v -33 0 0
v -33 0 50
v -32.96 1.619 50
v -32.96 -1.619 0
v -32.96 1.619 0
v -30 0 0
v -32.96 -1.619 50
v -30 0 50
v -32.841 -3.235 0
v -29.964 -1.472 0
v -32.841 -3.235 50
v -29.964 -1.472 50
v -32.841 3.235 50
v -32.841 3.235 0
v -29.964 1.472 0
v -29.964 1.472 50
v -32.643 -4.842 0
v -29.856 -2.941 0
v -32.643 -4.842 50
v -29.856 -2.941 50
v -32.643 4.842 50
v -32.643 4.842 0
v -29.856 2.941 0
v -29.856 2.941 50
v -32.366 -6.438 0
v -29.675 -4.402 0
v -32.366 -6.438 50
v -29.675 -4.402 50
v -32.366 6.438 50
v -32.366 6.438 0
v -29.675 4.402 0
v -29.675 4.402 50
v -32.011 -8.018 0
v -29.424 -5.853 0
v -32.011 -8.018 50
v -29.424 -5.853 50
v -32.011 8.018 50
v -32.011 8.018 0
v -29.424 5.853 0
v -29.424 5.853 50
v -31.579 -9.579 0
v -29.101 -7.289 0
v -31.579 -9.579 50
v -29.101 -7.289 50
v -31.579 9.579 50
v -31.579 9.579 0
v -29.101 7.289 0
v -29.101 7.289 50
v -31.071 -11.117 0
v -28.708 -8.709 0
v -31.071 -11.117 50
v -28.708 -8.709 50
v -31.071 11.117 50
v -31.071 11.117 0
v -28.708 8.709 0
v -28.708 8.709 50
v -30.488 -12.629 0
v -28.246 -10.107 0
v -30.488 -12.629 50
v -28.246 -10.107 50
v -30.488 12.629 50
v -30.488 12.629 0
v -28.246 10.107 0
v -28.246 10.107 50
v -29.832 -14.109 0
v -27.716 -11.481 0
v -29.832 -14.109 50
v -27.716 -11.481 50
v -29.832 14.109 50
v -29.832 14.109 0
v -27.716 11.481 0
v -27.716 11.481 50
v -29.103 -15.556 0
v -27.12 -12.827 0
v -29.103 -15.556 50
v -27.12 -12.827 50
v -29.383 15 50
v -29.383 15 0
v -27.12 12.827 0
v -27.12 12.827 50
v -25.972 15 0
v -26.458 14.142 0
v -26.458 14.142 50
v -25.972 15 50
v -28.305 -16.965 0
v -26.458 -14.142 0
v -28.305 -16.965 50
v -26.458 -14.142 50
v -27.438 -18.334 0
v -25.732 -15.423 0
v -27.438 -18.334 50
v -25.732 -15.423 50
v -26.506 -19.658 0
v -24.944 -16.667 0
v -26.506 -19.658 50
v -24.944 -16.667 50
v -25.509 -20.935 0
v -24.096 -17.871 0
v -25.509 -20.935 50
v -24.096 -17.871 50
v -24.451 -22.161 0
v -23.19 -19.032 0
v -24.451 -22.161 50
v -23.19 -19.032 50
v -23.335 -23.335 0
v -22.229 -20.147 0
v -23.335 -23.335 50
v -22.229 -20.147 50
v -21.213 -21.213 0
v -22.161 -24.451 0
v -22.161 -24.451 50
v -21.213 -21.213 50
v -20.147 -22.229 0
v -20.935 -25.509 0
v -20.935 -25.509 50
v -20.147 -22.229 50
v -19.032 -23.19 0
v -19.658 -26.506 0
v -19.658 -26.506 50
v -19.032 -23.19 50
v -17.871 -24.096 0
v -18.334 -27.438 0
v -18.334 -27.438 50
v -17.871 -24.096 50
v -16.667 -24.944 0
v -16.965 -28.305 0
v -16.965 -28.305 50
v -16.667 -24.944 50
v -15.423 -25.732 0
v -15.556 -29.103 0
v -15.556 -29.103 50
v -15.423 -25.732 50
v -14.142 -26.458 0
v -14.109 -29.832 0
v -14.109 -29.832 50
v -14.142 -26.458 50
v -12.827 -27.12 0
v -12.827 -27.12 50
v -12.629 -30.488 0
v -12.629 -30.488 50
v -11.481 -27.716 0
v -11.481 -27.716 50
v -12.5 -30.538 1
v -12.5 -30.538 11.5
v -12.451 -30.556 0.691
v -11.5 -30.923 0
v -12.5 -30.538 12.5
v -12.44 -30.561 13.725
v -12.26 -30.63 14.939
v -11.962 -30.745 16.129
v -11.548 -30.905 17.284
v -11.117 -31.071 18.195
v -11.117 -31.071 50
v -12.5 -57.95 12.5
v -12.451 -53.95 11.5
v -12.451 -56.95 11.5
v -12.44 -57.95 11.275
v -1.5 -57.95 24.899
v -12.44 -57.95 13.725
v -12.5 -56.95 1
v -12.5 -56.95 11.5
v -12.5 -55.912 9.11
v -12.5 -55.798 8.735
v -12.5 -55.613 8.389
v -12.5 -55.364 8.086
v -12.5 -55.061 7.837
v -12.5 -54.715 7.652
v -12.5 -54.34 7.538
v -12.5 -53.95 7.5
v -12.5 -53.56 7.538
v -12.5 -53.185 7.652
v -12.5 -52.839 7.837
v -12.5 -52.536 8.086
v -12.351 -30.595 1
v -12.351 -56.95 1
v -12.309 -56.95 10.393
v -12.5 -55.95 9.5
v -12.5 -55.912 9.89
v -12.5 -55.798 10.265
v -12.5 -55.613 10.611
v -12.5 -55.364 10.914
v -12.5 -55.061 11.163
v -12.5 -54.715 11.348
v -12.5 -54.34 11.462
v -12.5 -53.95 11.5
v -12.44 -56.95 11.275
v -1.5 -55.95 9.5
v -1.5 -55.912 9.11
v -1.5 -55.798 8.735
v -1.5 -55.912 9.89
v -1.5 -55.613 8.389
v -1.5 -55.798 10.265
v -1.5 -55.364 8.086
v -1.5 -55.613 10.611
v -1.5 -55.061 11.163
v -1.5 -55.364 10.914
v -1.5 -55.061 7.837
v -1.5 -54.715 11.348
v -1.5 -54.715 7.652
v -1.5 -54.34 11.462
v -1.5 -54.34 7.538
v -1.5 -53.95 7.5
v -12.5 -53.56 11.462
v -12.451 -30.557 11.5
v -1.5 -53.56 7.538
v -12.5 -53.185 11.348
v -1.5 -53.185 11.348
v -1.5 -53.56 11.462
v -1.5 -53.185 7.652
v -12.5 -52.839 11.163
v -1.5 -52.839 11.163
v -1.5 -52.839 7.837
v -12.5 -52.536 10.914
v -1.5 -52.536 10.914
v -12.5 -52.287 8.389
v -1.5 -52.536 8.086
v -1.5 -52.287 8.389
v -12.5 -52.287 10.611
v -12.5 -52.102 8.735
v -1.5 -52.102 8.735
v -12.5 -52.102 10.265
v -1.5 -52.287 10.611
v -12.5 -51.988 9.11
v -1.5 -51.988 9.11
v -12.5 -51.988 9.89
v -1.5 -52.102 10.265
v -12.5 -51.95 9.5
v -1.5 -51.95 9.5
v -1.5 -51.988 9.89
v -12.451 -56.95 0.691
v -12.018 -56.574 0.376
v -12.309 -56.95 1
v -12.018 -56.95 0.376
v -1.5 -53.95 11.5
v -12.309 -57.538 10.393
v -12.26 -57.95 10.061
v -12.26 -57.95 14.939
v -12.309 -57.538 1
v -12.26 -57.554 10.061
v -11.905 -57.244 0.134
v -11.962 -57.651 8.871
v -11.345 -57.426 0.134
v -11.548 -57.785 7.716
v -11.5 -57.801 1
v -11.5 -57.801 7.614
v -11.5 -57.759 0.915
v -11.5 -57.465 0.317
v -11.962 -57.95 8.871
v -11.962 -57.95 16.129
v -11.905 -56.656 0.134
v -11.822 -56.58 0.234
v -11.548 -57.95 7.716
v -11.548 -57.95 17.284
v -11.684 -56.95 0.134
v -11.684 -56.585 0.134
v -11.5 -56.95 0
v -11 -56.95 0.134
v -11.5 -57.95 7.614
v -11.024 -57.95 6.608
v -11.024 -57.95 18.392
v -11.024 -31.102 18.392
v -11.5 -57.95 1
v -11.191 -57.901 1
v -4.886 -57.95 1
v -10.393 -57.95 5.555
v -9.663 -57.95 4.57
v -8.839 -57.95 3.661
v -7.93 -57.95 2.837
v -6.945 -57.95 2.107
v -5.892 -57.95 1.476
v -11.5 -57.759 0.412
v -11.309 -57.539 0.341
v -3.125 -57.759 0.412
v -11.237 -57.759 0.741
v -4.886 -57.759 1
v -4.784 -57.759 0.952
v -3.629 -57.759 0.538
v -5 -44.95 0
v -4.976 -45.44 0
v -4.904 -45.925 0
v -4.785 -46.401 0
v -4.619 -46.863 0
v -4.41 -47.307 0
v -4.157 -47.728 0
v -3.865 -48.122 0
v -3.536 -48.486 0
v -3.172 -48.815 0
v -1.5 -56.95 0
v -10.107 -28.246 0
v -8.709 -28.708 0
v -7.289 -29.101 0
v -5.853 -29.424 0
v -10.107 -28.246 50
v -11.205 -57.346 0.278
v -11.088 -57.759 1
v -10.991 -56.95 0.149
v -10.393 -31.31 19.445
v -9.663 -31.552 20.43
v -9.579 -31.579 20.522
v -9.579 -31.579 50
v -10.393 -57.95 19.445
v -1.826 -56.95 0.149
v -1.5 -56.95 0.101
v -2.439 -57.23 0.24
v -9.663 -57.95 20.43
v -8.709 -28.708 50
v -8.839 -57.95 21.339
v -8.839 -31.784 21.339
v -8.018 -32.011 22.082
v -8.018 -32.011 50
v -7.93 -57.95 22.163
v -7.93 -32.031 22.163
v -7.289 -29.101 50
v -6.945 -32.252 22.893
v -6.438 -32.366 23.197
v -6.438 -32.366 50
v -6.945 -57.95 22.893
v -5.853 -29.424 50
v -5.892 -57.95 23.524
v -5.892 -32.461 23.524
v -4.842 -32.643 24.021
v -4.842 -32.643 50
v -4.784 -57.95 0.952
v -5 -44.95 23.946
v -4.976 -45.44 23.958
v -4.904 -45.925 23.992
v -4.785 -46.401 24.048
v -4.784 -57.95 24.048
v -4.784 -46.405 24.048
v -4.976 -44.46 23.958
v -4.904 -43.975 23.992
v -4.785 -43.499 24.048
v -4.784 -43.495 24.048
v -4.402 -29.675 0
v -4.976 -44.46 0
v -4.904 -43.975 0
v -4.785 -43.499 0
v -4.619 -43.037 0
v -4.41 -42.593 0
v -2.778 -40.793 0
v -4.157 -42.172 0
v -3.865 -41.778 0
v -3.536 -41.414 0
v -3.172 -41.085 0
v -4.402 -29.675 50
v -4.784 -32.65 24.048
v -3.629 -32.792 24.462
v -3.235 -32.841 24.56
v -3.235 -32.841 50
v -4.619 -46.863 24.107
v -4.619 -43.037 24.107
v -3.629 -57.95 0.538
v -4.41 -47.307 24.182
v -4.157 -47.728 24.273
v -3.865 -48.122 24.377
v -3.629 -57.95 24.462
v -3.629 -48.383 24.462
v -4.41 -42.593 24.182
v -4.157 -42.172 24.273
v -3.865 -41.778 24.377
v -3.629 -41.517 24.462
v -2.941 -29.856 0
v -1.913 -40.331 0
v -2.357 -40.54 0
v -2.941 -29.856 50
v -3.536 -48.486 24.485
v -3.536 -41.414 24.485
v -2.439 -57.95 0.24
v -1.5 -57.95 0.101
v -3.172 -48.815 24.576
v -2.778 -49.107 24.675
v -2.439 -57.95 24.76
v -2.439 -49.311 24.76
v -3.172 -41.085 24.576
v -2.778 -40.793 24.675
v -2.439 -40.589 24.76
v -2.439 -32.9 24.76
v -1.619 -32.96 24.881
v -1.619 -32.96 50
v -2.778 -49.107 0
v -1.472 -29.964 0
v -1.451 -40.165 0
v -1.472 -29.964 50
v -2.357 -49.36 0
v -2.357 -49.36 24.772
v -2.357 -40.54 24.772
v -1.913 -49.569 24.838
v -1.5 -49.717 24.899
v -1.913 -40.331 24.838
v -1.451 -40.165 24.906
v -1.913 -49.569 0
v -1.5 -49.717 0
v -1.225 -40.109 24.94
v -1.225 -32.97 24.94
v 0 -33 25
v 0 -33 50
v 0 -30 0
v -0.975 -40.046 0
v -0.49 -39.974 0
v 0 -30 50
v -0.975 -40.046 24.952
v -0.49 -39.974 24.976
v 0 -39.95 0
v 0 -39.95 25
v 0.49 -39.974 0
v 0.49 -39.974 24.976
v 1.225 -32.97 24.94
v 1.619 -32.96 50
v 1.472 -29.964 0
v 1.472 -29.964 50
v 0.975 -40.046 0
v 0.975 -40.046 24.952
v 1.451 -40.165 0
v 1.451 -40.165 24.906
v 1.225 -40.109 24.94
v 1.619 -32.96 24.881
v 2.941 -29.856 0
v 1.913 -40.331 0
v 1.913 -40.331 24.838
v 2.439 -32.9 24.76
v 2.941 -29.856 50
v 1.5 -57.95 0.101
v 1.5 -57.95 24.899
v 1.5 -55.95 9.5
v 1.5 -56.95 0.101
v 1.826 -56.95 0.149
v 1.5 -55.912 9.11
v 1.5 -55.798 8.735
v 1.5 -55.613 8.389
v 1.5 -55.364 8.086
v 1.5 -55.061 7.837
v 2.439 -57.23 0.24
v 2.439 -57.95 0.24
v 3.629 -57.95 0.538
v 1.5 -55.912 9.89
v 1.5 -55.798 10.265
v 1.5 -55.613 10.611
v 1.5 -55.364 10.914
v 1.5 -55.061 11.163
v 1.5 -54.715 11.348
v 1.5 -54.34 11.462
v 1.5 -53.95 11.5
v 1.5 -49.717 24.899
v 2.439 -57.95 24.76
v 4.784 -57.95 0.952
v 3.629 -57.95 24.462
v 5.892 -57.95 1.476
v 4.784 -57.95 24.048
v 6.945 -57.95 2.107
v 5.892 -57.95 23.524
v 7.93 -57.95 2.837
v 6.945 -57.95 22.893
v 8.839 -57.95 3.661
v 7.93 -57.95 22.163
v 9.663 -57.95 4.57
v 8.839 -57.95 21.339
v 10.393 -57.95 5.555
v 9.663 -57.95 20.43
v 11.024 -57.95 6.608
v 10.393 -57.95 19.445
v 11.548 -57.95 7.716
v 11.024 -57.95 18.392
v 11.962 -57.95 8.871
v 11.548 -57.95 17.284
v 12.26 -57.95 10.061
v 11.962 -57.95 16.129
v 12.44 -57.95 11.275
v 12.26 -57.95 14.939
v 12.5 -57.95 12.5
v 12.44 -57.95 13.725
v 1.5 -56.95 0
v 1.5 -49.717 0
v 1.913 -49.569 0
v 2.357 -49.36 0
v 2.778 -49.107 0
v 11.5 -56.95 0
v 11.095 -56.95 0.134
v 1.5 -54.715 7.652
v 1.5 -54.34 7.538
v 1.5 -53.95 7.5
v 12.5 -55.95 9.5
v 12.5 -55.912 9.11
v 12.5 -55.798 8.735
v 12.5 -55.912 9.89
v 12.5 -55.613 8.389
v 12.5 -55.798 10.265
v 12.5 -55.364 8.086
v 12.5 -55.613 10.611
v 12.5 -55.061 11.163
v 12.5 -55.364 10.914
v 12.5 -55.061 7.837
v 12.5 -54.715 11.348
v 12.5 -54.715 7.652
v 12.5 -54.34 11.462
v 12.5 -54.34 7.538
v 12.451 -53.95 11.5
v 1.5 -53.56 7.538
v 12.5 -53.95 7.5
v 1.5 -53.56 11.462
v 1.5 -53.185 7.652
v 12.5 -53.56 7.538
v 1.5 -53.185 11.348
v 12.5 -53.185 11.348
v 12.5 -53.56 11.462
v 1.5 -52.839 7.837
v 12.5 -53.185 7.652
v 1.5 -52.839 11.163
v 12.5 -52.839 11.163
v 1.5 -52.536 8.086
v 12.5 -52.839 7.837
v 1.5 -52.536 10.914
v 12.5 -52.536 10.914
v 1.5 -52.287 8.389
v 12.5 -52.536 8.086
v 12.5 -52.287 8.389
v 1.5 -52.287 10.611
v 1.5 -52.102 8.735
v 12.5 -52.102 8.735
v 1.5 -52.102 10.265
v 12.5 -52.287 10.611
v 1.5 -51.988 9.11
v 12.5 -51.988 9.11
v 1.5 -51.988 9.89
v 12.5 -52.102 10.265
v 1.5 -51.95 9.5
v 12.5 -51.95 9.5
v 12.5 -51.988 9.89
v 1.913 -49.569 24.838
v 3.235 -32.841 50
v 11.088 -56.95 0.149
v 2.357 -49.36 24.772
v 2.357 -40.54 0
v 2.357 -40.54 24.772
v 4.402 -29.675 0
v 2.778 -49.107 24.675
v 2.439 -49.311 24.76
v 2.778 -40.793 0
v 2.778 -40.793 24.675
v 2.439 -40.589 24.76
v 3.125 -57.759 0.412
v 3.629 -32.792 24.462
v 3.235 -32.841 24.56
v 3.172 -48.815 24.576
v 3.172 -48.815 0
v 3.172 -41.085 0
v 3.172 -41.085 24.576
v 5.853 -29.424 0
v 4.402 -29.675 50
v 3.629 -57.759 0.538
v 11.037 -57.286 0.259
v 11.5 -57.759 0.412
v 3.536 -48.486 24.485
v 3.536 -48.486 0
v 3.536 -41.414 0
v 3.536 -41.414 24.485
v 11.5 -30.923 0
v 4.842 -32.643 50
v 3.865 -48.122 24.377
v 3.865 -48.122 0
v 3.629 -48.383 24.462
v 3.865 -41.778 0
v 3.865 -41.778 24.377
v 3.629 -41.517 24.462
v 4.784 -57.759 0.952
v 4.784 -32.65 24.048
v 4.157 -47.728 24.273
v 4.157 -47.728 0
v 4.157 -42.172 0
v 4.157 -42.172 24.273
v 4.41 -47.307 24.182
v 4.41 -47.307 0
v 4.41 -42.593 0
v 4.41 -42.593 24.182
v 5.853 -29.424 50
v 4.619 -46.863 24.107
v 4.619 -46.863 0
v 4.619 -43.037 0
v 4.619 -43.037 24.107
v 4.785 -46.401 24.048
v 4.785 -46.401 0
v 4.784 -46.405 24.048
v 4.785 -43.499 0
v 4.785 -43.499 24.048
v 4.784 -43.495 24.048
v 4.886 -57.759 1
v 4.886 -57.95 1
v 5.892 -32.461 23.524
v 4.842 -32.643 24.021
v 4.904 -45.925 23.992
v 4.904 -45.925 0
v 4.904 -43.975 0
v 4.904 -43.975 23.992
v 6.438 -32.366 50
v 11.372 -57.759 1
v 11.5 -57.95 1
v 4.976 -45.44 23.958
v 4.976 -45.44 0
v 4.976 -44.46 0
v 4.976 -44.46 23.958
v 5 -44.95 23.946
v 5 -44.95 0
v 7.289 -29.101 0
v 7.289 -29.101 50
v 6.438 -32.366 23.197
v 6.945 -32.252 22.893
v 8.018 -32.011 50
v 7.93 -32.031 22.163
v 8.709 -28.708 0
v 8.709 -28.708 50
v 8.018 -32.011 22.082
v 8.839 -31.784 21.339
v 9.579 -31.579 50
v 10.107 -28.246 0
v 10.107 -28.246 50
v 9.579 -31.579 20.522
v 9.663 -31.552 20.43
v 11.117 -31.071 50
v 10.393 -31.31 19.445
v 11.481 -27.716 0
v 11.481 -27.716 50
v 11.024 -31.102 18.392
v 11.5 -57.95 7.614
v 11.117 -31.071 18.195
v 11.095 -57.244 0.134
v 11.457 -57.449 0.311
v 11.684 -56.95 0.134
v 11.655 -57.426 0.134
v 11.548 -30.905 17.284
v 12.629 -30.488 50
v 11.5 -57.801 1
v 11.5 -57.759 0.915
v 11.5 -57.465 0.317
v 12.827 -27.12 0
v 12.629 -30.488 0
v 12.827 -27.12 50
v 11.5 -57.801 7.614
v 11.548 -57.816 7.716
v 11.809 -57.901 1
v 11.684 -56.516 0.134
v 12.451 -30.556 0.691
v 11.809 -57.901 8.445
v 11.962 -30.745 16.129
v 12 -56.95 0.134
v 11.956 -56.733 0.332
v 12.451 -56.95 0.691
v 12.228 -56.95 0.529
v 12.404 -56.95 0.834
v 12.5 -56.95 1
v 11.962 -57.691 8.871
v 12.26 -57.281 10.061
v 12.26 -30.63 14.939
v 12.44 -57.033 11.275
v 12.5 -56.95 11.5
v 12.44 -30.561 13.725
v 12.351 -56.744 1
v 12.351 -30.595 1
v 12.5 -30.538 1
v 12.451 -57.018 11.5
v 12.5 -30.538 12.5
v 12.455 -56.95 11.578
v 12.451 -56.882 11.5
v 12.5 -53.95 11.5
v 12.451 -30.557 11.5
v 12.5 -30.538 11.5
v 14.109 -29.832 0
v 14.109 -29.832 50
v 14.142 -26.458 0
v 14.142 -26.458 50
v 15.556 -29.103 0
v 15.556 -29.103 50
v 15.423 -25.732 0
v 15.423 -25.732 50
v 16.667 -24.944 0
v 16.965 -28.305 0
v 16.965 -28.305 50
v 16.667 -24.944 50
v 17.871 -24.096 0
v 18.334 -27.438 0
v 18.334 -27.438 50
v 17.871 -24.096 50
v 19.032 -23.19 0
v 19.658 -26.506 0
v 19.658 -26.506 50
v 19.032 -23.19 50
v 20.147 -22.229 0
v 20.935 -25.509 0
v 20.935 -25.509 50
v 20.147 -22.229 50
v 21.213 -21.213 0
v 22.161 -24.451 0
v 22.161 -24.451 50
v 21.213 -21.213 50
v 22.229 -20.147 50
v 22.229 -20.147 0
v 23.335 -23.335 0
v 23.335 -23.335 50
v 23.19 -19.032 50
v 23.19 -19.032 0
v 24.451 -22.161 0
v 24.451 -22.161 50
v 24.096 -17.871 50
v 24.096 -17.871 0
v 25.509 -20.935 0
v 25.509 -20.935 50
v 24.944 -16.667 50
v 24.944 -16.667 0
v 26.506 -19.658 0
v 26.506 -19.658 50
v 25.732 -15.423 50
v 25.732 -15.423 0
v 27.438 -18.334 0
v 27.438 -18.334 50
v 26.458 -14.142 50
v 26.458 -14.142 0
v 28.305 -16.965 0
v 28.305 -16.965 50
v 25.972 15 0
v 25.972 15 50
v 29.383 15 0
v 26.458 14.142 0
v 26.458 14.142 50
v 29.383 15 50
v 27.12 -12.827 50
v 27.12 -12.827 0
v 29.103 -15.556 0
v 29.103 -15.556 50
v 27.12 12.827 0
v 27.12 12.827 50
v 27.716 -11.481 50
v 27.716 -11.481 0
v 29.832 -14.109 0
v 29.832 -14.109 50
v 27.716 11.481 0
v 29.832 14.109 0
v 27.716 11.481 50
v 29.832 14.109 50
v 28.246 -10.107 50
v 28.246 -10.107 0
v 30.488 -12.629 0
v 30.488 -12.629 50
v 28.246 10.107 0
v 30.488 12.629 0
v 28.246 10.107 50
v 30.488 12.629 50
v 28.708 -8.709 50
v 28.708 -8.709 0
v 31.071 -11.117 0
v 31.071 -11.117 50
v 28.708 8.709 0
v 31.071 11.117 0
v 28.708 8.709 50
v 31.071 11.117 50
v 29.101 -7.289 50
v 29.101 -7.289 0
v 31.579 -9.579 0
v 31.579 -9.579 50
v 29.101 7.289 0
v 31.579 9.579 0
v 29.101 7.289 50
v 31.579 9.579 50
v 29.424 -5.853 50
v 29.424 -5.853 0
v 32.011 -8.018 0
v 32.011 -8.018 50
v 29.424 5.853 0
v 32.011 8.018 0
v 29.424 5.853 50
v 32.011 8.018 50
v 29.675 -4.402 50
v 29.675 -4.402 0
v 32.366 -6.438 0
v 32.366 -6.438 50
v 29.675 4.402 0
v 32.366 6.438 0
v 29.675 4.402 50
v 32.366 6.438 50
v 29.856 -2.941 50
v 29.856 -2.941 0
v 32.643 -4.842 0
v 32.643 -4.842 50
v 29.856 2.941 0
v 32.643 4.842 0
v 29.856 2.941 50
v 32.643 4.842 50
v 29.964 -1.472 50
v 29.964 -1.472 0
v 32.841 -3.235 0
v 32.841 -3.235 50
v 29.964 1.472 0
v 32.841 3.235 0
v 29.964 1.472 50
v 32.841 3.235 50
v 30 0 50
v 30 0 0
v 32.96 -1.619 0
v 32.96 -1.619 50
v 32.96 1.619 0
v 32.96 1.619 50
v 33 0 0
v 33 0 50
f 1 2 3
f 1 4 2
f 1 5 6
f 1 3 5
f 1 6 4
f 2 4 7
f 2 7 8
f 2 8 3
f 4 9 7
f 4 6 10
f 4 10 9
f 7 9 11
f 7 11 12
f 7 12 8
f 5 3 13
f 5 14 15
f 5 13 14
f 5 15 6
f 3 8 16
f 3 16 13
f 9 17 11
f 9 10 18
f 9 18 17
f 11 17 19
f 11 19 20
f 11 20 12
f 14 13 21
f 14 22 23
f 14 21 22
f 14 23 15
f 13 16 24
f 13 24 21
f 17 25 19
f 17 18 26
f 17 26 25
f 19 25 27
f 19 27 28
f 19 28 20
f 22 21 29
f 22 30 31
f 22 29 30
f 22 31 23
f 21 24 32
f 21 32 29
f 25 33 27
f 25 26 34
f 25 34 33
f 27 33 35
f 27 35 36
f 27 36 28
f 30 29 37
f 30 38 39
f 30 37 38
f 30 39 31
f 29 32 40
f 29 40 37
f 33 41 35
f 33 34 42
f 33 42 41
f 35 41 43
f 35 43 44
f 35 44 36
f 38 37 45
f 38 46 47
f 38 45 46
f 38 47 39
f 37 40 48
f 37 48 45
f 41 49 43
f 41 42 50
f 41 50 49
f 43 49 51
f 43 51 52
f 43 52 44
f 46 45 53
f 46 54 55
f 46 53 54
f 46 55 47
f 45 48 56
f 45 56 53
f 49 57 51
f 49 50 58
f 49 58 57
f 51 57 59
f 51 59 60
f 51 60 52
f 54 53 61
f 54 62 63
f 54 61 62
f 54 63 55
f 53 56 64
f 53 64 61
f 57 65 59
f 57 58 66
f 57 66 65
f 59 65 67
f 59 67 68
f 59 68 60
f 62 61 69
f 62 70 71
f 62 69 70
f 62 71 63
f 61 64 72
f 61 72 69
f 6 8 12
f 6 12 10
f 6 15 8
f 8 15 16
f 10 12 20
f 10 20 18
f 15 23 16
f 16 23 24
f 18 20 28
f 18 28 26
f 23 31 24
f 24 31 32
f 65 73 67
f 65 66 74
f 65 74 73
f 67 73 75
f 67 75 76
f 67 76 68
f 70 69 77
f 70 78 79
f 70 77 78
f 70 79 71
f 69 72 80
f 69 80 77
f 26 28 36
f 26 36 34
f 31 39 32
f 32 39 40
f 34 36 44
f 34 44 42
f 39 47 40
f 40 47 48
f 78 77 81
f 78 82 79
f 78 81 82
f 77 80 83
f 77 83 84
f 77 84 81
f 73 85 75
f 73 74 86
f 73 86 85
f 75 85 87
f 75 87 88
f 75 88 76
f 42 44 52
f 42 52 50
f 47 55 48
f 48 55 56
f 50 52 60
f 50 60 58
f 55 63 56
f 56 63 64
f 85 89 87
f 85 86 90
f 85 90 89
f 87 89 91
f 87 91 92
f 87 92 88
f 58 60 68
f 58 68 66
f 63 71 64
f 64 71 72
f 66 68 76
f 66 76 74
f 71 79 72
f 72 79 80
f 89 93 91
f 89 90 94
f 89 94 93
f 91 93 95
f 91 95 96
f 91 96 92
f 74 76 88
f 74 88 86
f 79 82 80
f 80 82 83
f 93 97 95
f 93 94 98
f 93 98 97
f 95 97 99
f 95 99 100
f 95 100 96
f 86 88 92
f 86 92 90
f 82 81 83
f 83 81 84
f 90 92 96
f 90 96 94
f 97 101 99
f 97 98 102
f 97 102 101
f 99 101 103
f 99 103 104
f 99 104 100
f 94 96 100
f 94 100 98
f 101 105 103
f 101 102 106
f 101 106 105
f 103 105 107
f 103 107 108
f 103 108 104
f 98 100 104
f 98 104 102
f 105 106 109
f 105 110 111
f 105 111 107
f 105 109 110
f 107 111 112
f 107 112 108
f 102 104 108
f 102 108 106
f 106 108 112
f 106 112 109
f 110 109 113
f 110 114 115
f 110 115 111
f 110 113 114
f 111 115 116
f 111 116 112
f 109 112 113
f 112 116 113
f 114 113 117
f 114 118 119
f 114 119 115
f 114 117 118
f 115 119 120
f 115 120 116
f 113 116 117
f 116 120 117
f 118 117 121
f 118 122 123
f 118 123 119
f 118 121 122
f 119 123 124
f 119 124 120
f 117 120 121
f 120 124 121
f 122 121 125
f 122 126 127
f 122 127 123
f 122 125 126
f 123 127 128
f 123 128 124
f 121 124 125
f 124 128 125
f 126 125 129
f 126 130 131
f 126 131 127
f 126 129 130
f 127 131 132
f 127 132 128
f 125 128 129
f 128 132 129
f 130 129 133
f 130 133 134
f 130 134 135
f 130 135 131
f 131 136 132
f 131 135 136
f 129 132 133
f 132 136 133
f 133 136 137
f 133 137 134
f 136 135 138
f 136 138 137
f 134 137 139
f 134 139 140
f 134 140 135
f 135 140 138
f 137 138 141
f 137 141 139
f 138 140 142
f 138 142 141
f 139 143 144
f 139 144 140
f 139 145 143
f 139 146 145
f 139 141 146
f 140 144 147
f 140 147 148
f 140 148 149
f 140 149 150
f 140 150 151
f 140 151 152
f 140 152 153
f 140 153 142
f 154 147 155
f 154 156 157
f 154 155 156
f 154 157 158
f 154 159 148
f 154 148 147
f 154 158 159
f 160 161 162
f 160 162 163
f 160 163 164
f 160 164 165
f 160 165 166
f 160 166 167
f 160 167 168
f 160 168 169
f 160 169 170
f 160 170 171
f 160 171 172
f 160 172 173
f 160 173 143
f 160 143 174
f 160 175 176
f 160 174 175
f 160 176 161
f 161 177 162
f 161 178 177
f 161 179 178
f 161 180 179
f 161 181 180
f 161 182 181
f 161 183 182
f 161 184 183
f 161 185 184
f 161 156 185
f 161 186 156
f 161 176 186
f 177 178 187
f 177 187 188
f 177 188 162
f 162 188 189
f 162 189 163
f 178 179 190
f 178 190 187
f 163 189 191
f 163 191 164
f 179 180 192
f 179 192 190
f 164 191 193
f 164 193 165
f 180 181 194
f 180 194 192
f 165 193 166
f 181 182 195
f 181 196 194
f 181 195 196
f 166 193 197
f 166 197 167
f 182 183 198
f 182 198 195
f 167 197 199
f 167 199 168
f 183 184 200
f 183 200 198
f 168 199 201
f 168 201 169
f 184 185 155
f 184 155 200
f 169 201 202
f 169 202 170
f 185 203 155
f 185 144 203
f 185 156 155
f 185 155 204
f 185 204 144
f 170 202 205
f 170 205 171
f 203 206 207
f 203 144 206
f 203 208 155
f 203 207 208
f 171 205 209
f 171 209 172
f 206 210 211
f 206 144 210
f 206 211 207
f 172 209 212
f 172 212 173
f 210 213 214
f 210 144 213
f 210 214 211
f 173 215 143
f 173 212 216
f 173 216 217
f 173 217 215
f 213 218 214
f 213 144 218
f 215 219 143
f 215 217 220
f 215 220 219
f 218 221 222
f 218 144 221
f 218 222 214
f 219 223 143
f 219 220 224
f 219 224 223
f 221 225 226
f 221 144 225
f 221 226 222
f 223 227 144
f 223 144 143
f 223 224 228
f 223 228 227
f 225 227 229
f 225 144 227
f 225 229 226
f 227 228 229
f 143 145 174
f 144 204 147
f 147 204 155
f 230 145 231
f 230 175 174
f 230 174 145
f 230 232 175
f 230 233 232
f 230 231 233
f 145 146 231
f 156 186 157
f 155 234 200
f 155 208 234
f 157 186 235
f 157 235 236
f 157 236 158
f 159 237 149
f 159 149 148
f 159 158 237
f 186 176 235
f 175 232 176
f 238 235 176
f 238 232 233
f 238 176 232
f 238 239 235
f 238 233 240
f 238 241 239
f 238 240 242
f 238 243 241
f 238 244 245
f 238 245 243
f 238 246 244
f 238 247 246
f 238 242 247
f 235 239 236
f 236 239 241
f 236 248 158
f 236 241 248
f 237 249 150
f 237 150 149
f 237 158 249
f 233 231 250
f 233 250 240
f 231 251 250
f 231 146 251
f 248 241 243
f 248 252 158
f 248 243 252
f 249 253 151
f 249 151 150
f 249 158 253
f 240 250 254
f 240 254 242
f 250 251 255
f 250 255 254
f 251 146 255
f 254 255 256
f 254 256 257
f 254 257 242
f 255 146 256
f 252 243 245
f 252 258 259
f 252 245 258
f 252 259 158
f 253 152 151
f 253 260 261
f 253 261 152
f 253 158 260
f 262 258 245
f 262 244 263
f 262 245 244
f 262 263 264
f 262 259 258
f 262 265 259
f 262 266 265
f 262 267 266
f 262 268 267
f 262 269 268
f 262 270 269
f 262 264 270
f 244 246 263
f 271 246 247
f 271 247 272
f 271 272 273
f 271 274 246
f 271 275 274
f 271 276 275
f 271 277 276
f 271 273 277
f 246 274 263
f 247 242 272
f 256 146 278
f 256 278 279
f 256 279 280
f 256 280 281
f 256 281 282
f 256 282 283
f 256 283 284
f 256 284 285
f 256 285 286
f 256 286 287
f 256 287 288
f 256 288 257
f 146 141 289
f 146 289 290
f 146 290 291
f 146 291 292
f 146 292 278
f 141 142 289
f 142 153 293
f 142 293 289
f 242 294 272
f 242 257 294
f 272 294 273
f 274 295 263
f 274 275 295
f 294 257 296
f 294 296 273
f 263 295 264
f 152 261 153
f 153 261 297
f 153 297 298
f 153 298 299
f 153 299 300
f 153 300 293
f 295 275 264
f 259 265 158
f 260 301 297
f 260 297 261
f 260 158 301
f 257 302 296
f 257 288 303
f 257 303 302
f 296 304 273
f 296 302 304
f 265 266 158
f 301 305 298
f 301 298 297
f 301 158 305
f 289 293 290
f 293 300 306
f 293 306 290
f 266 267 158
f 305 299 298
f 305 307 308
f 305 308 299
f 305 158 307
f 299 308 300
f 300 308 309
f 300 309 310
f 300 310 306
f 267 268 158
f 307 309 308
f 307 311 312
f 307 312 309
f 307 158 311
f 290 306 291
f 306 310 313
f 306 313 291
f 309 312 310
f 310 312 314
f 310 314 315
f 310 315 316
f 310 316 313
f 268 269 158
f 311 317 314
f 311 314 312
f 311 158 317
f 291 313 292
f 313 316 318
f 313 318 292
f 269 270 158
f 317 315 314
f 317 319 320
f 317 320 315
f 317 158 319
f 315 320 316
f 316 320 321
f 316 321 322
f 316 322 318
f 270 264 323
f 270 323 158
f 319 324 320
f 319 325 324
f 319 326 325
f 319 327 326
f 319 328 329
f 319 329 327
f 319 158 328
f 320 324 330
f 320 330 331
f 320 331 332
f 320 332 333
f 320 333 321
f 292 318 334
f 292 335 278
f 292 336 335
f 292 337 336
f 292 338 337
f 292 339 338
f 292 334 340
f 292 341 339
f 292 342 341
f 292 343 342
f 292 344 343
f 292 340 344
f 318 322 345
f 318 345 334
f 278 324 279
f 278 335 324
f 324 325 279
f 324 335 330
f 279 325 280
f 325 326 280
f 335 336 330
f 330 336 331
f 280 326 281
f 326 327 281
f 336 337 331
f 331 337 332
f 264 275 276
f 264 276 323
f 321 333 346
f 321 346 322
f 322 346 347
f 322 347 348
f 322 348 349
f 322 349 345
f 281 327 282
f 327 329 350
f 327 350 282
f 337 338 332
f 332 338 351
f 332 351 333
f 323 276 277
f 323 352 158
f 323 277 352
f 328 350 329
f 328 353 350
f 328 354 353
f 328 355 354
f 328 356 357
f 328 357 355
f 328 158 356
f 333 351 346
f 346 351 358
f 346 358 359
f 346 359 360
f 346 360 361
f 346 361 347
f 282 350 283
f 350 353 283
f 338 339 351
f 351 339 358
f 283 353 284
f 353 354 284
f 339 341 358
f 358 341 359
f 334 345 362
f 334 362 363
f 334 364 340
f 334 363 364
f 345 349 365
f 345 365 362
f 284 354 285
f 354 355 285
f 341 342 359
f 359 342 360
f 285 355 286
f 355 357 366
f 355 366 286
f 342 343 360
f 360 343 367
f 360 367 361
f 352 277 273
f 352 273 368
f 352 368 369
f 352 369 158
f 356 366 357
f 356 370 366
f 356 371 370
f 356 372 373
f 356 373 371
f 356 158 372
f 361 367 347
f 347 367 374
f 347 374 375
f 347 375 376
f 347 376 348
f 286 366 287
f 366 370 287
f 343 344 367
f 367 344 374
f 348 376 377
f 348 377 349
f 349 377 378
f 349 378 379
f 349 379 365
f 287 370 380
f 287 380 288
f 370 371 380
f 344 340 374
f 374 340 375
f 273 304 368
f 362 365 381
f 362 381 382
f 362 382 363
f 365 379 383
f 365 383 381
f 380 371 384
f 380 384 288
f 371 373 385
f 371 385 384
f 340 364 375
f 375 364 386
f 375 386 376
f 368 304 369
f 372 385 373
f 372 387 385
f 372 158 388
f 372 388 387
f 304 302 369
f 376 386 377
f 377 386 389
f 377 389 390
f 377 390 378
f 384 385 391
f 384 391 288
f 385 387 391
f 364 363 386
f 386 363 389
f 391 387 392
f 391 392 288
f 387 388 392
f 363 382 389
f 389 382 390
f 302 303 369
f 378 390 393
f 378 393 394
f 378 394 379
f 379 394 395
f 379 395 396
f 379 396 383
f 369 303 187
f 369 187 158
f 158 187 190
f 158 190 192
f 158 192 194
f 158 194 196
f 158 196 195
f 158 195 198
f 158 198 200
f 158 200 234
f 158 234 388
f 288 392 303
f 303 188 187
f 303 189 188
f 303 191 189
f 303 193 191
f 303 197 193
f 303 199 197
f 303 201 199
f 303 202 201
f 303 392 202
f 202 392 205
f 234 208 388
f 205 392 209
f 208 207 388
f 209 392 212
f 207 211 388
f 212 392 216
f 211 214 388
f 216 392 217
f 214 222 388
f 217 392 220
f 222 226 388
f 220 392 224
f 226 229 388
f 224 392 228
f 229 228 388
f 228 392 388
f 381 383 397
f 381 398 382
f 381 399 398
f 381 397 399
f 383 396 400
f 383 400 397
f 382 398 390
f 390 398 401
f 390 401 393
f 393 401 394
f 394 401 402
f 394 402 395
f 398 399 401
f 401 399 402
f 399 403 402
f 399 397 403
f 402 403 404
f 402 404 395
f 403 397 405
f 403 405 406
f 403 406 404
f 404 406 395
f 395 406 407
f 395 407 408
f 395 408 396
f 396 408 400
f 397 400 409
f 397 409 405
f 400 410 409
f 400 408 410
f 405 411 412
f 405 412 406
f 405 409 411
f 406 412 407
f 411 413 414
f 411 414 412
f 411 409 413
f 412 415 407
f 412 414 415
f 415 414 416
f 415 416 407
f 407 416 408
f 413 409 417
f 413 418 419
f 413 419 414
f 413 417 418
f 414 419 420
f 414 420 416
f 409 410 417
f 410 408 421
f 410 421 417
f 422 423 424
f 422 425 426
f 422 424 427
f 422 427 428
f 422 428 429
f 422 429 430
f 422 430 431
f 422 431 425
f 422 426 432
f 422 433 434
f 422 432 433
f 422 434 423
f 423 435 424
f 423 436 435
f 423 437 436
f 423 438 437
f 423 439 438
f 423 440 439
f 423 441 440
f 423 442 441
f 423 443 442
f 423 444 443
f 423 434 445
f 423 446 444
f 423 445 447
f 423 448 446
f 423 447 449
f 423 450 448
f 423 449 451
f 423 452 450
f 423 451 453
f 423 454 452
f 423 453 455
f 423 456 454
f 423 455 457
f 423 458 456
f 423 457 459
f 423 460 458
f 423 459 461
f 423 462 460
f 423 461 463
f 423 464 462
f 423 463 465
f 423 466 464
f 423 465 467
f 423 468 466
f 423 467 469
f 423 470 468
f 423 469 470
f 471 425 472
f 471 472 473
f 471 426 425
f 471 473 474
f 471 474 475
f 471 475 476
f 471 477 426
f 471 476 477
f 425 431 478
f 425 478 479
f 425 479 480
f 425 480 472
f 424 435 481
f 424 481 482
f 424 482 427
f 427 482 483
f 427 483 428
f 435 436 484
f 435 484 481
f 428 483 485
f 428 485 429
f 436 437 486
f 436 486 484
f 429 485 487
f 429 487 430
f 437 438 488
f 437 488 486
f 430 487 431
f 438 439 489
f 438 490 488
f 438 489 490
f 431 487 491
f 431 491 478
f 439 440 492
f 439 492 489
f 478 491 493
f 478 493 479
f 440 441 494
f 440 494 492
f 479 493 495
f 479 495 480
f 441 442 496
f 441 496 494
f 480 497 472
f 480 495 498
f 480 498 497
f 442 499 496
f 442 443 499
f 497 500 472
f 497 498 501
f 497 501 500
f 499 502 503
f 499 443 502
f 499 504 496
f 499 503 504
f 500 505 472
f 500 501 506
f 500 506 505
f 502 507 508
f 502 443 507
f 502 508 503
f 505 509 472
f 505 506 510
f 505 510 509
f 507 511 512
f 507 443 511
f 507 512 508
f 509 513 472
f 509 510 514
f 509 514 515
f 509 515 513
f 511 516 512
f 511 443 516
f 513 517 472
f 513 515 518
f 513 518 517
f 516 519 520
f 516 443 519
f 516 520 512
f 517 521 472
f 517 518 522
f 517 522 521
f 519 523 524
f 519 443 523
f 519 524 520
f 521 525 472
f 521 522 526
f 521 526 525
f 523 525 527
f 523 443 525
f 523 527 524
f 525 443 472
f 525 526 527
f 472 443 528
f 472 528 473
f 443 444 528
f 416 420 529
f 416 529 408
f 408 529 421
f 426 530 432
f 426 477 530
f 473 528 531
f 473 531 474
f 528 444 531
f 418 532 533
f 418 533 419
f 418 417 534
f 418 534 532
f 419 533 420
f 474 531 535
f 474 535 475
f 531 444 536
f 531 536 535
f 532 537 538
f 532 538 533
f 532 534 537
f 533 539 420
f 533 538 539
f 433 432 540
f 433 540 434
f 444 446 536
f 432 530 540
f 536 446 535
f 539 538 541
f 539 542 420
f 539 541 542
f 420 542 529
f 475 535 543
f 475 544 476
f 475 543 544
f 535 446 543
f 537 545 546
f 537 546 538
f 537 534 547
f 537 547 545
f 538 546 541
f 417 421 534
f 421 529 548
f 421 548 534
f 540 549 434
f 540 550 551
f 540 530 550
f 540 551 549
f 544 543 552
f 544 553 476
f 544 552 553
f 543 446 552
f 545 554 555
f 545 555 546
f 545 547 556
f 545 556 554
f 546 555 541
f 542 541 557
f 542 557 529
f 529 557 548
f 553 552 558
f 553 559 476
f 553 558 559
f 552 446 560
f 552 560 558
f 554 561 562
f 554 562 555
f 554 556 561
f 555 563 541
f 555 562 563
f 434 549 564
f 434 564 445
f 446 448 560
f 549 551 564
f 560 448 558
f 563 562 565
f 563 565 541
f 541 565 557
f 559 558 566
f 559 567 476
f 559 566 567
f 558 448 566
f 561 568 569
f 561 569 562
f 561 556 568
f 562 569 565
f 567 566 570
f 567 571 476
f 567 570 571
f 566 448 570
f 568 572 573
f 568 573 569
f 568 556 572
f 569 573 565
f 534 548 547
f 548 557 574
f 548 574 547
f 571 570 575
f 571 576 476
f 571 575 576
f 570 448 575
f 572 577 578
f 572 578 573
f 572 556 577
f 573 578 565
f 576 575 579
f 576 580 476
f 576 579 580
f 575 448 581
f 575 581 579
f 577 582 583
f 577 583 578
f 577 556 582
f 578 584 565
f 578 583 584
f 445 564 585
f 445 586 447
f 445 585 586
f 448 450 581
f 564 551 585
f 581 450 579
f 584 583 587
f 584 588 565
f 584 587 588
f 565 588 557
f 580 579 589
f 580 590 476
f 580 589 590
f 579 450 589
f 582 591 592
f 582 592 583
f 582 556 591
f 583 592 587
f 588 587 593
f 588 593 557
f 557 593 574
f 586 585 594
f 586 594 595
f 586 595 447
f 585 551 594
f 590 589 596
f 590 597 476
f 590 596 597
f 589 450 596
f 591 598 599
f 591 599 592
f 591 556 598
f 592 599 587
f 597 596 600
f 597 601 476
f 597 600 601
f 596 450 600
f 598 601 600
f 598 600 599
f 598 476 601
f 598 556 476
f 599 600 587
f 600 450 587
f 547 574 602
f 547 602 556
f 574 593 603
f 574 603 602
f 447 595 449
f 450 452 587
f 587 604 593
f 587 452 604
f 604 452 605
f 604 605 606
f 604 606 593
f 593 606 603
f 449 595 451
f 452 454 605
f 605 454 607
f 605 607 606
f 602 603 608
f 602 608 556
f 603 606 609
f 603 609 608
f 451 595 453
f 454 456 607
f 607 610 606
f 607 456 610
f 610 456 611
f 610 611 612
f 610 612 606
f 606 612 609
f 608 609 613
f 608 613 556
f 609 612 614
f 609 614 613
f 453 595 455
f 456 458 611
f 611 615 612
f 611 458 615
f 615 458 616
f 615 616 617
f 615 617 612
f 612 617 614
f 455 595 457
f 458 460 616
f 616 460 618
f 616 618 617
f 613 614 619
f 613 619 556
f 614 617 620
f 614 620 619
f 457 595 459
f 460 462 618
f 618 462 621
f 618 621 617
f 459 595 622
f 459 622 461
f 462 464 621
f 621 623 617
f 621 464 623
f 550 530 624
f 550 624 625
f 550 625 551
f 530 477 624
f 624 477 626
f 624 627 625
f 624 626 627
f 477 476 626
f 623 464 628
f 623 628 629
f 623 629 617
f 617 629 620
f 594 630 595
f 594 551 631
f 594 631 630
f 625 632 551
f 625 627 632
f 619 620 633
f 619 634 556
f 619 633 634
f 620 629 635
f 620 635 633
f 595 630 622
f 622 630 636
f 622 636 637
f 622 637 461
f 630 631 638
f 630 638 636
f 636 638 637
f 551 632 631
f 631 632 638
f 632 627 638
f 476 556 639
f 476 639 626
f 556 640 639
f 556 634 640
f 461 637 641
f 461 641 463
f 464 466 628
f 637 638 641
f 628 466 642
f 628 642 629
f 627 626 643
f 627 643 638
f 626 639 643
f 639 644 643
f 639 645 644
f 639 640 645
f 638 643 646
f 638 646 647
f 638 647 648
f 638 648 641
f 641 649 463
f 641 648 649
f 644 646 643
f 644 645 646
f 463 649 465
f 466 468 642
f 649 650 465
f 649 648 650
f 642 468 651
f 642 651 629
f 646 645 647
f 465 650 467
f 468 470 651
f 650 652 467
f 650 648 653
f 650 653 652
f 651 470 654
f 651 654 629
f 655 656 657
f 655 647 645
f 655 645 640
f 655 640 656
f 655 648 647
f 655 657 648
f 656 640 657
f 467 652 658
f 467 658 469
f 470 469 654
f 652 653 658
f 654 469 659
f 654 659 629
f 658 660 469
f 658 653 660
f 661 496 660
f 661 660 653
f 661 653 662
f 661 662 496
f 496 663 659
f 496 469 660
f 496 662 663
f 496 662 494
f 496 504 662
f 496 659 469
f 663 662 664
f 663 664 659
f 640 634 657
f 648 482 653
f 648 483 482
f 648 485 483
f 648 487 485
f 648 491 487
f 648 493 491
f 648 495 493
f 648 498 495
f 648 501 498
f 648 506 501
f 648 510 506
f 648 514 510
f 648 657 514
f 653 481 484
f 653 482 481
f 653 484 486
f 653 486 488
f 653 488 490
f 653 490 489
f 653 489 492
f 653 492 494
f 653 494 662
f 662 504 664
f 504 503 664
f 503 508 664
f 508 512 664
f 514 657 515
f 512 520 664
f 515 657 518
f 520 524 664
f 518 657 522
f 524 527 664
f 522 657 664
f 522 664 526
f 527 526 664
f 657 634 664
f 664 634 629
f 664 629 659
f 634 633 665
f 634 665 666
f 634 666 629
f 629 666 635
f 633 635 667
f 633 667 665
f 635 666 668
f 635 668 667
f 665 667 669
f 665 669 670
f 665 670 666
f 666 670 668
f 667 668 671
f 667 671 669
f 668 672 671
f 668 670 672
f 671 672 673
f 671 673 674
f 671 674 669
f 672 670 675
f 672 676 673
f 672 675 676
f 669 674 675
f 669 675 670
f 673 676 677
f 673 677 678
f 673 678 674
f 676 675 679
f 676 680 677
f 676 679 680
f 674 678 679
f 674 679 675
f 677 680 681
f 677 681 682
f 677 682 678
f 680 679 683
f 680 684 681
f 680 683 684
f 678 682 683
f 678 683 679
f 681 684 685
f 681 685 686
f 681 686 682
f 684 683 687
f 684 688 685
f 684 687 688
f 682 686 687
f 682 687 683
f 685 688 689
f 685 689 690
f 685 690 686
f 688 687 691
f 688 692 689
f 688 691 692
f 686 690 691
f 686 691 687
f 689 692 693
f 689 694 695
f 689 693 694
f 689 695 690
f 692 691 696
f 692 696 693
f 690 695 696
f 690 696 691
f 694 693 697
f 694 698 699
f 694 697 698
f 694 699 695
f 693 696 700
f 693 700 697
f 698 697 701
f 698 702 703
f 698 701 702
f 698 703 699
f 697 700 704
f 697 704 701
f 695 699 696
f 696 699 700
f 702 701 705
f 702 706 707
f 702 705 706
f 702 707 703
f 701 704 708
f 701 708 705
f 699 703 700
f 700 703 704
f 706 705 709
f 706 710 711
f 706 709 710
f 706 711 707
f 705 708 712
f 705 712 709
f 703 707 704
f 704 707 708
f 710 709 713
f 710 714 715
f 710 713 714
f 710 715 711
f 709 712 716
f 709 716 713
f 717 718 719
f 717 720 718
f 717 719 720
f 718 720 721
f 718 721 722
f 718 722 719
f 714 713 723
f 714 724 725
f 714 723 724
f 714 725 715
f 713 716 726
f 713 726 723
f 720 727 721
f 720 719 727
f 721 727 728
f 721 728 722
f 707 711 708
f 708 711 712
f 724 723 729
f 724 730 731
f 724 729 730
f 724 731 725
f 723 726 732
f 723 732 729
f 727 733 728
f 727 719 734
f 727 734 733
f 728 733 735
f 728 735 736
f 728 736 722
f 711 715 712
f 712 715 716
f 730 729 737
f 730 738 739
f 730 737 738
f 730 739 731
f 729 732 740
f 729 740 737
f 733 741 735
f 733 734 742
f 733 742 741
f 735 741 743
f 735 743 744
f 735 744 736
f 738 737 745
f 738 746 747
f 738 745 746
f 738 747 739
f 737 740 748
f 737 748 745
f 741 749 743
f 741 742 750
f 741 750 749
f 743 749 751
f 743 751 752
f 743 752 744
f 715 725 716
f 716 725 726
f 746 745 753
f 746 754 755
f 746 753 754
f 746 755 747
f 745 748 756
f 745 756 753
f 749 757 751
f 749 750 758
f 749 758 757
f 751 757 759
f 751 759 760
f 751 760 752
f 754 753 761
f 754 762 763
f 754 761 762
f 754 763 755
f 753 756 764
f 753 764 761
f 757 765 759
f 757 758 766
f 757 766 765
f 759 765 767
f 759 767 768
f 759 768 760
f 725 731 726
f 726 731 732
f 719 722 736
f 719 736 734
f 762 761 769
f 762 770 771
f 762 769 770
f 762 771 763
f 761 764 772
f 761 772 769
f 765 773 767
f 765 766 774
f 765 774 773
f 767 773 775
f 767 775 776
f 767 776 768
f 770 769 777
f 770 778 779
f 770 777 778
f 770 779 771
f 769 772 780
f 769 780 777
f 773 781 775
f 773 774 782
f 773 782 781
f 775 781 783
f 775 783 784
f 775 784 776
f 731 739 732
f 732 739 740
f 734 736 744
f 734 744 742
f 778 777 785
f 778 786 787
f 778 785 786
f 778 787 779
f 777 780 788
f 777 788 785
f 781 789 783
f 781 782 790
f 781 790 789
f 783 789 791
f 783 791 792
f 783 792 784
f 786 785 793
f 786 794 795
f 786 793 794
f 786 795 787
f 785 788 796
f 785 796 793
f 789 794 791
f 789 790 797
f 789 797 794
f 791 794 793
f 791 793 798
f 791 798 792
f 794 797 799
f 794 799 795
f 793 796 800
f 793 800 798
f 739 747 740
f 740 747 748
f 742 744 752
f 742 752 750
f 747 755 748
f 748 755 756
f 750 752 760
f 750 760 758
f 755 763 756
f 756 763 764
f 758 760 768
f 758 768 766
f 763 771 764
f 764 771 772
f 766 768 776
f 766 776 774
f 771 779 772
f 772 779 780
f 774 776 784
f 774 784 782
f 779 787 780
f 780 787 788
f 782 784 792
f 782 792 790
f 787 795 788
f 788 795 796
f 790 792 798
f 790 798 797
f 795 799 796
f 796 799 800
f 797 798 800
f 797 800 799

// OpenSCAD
// Metal detector arm rest

include <MCAD/boxes.scad>;

overlap=0.05;
m4Diameter=4;
armDiameter=60;
wallThickness=3;
length=50;
shaftDiameter=10;
handleGripLength = armDiameter/2+wallThickness+4;
handleSection = 25;
handleOverlapLength=wallThickness-overlap;
handleFixingLength = 8;
handleLength = handleGripLength + handleOverlapLength + shaftDiameter + handleFixingLength;
slotWidth=3;
verlap=0.05;

module handle() {
    difference() {
        union() {
            translate([0,handleLength/2,handleSection/4])
                roundedBox([handleSection, handleLength, handleSection/2], 1, false);
            translate([0,0,handleSection/2]) rotate([-90,0,0])
                cylinder(r=handleSection/2,h=handleLength,$fn=64);
        }
        translate([0,handleFixingLength+shaftDiameter/2,-overlap]) cylinder(r=shaftDiameter/2,h=handleSection+2*overlap,$fn=64);
        translate([-50,handleFixingLength/2,handleSection/2 - 3]) 
            rotate([0,90,0]) cylinder(r=m4Diameter/2,h=100,$fn=32);
        translate([-slotWidth/2,-overlap,-overlap]) cube([slotWidth,handleFixingLength+shaftDiameter/2,handleSection+2*overlap]);
    }
}

module armRest() {
    difference() {
        union() {
            cylinder(h=length,r=armDiameter/2+wallThickness,$fn=128);
            translate([0,-handleLength,0]) handle();
        }
        translate([0,0,-overlap]) cylinder(h=length+2*overlap,d=armDiameter,$fn=128);
        translate([-armDiameter,15,-overlap]) cube([2*armDiameter,armDiameter,length+2*overlap]);
    }
}

armRest();
